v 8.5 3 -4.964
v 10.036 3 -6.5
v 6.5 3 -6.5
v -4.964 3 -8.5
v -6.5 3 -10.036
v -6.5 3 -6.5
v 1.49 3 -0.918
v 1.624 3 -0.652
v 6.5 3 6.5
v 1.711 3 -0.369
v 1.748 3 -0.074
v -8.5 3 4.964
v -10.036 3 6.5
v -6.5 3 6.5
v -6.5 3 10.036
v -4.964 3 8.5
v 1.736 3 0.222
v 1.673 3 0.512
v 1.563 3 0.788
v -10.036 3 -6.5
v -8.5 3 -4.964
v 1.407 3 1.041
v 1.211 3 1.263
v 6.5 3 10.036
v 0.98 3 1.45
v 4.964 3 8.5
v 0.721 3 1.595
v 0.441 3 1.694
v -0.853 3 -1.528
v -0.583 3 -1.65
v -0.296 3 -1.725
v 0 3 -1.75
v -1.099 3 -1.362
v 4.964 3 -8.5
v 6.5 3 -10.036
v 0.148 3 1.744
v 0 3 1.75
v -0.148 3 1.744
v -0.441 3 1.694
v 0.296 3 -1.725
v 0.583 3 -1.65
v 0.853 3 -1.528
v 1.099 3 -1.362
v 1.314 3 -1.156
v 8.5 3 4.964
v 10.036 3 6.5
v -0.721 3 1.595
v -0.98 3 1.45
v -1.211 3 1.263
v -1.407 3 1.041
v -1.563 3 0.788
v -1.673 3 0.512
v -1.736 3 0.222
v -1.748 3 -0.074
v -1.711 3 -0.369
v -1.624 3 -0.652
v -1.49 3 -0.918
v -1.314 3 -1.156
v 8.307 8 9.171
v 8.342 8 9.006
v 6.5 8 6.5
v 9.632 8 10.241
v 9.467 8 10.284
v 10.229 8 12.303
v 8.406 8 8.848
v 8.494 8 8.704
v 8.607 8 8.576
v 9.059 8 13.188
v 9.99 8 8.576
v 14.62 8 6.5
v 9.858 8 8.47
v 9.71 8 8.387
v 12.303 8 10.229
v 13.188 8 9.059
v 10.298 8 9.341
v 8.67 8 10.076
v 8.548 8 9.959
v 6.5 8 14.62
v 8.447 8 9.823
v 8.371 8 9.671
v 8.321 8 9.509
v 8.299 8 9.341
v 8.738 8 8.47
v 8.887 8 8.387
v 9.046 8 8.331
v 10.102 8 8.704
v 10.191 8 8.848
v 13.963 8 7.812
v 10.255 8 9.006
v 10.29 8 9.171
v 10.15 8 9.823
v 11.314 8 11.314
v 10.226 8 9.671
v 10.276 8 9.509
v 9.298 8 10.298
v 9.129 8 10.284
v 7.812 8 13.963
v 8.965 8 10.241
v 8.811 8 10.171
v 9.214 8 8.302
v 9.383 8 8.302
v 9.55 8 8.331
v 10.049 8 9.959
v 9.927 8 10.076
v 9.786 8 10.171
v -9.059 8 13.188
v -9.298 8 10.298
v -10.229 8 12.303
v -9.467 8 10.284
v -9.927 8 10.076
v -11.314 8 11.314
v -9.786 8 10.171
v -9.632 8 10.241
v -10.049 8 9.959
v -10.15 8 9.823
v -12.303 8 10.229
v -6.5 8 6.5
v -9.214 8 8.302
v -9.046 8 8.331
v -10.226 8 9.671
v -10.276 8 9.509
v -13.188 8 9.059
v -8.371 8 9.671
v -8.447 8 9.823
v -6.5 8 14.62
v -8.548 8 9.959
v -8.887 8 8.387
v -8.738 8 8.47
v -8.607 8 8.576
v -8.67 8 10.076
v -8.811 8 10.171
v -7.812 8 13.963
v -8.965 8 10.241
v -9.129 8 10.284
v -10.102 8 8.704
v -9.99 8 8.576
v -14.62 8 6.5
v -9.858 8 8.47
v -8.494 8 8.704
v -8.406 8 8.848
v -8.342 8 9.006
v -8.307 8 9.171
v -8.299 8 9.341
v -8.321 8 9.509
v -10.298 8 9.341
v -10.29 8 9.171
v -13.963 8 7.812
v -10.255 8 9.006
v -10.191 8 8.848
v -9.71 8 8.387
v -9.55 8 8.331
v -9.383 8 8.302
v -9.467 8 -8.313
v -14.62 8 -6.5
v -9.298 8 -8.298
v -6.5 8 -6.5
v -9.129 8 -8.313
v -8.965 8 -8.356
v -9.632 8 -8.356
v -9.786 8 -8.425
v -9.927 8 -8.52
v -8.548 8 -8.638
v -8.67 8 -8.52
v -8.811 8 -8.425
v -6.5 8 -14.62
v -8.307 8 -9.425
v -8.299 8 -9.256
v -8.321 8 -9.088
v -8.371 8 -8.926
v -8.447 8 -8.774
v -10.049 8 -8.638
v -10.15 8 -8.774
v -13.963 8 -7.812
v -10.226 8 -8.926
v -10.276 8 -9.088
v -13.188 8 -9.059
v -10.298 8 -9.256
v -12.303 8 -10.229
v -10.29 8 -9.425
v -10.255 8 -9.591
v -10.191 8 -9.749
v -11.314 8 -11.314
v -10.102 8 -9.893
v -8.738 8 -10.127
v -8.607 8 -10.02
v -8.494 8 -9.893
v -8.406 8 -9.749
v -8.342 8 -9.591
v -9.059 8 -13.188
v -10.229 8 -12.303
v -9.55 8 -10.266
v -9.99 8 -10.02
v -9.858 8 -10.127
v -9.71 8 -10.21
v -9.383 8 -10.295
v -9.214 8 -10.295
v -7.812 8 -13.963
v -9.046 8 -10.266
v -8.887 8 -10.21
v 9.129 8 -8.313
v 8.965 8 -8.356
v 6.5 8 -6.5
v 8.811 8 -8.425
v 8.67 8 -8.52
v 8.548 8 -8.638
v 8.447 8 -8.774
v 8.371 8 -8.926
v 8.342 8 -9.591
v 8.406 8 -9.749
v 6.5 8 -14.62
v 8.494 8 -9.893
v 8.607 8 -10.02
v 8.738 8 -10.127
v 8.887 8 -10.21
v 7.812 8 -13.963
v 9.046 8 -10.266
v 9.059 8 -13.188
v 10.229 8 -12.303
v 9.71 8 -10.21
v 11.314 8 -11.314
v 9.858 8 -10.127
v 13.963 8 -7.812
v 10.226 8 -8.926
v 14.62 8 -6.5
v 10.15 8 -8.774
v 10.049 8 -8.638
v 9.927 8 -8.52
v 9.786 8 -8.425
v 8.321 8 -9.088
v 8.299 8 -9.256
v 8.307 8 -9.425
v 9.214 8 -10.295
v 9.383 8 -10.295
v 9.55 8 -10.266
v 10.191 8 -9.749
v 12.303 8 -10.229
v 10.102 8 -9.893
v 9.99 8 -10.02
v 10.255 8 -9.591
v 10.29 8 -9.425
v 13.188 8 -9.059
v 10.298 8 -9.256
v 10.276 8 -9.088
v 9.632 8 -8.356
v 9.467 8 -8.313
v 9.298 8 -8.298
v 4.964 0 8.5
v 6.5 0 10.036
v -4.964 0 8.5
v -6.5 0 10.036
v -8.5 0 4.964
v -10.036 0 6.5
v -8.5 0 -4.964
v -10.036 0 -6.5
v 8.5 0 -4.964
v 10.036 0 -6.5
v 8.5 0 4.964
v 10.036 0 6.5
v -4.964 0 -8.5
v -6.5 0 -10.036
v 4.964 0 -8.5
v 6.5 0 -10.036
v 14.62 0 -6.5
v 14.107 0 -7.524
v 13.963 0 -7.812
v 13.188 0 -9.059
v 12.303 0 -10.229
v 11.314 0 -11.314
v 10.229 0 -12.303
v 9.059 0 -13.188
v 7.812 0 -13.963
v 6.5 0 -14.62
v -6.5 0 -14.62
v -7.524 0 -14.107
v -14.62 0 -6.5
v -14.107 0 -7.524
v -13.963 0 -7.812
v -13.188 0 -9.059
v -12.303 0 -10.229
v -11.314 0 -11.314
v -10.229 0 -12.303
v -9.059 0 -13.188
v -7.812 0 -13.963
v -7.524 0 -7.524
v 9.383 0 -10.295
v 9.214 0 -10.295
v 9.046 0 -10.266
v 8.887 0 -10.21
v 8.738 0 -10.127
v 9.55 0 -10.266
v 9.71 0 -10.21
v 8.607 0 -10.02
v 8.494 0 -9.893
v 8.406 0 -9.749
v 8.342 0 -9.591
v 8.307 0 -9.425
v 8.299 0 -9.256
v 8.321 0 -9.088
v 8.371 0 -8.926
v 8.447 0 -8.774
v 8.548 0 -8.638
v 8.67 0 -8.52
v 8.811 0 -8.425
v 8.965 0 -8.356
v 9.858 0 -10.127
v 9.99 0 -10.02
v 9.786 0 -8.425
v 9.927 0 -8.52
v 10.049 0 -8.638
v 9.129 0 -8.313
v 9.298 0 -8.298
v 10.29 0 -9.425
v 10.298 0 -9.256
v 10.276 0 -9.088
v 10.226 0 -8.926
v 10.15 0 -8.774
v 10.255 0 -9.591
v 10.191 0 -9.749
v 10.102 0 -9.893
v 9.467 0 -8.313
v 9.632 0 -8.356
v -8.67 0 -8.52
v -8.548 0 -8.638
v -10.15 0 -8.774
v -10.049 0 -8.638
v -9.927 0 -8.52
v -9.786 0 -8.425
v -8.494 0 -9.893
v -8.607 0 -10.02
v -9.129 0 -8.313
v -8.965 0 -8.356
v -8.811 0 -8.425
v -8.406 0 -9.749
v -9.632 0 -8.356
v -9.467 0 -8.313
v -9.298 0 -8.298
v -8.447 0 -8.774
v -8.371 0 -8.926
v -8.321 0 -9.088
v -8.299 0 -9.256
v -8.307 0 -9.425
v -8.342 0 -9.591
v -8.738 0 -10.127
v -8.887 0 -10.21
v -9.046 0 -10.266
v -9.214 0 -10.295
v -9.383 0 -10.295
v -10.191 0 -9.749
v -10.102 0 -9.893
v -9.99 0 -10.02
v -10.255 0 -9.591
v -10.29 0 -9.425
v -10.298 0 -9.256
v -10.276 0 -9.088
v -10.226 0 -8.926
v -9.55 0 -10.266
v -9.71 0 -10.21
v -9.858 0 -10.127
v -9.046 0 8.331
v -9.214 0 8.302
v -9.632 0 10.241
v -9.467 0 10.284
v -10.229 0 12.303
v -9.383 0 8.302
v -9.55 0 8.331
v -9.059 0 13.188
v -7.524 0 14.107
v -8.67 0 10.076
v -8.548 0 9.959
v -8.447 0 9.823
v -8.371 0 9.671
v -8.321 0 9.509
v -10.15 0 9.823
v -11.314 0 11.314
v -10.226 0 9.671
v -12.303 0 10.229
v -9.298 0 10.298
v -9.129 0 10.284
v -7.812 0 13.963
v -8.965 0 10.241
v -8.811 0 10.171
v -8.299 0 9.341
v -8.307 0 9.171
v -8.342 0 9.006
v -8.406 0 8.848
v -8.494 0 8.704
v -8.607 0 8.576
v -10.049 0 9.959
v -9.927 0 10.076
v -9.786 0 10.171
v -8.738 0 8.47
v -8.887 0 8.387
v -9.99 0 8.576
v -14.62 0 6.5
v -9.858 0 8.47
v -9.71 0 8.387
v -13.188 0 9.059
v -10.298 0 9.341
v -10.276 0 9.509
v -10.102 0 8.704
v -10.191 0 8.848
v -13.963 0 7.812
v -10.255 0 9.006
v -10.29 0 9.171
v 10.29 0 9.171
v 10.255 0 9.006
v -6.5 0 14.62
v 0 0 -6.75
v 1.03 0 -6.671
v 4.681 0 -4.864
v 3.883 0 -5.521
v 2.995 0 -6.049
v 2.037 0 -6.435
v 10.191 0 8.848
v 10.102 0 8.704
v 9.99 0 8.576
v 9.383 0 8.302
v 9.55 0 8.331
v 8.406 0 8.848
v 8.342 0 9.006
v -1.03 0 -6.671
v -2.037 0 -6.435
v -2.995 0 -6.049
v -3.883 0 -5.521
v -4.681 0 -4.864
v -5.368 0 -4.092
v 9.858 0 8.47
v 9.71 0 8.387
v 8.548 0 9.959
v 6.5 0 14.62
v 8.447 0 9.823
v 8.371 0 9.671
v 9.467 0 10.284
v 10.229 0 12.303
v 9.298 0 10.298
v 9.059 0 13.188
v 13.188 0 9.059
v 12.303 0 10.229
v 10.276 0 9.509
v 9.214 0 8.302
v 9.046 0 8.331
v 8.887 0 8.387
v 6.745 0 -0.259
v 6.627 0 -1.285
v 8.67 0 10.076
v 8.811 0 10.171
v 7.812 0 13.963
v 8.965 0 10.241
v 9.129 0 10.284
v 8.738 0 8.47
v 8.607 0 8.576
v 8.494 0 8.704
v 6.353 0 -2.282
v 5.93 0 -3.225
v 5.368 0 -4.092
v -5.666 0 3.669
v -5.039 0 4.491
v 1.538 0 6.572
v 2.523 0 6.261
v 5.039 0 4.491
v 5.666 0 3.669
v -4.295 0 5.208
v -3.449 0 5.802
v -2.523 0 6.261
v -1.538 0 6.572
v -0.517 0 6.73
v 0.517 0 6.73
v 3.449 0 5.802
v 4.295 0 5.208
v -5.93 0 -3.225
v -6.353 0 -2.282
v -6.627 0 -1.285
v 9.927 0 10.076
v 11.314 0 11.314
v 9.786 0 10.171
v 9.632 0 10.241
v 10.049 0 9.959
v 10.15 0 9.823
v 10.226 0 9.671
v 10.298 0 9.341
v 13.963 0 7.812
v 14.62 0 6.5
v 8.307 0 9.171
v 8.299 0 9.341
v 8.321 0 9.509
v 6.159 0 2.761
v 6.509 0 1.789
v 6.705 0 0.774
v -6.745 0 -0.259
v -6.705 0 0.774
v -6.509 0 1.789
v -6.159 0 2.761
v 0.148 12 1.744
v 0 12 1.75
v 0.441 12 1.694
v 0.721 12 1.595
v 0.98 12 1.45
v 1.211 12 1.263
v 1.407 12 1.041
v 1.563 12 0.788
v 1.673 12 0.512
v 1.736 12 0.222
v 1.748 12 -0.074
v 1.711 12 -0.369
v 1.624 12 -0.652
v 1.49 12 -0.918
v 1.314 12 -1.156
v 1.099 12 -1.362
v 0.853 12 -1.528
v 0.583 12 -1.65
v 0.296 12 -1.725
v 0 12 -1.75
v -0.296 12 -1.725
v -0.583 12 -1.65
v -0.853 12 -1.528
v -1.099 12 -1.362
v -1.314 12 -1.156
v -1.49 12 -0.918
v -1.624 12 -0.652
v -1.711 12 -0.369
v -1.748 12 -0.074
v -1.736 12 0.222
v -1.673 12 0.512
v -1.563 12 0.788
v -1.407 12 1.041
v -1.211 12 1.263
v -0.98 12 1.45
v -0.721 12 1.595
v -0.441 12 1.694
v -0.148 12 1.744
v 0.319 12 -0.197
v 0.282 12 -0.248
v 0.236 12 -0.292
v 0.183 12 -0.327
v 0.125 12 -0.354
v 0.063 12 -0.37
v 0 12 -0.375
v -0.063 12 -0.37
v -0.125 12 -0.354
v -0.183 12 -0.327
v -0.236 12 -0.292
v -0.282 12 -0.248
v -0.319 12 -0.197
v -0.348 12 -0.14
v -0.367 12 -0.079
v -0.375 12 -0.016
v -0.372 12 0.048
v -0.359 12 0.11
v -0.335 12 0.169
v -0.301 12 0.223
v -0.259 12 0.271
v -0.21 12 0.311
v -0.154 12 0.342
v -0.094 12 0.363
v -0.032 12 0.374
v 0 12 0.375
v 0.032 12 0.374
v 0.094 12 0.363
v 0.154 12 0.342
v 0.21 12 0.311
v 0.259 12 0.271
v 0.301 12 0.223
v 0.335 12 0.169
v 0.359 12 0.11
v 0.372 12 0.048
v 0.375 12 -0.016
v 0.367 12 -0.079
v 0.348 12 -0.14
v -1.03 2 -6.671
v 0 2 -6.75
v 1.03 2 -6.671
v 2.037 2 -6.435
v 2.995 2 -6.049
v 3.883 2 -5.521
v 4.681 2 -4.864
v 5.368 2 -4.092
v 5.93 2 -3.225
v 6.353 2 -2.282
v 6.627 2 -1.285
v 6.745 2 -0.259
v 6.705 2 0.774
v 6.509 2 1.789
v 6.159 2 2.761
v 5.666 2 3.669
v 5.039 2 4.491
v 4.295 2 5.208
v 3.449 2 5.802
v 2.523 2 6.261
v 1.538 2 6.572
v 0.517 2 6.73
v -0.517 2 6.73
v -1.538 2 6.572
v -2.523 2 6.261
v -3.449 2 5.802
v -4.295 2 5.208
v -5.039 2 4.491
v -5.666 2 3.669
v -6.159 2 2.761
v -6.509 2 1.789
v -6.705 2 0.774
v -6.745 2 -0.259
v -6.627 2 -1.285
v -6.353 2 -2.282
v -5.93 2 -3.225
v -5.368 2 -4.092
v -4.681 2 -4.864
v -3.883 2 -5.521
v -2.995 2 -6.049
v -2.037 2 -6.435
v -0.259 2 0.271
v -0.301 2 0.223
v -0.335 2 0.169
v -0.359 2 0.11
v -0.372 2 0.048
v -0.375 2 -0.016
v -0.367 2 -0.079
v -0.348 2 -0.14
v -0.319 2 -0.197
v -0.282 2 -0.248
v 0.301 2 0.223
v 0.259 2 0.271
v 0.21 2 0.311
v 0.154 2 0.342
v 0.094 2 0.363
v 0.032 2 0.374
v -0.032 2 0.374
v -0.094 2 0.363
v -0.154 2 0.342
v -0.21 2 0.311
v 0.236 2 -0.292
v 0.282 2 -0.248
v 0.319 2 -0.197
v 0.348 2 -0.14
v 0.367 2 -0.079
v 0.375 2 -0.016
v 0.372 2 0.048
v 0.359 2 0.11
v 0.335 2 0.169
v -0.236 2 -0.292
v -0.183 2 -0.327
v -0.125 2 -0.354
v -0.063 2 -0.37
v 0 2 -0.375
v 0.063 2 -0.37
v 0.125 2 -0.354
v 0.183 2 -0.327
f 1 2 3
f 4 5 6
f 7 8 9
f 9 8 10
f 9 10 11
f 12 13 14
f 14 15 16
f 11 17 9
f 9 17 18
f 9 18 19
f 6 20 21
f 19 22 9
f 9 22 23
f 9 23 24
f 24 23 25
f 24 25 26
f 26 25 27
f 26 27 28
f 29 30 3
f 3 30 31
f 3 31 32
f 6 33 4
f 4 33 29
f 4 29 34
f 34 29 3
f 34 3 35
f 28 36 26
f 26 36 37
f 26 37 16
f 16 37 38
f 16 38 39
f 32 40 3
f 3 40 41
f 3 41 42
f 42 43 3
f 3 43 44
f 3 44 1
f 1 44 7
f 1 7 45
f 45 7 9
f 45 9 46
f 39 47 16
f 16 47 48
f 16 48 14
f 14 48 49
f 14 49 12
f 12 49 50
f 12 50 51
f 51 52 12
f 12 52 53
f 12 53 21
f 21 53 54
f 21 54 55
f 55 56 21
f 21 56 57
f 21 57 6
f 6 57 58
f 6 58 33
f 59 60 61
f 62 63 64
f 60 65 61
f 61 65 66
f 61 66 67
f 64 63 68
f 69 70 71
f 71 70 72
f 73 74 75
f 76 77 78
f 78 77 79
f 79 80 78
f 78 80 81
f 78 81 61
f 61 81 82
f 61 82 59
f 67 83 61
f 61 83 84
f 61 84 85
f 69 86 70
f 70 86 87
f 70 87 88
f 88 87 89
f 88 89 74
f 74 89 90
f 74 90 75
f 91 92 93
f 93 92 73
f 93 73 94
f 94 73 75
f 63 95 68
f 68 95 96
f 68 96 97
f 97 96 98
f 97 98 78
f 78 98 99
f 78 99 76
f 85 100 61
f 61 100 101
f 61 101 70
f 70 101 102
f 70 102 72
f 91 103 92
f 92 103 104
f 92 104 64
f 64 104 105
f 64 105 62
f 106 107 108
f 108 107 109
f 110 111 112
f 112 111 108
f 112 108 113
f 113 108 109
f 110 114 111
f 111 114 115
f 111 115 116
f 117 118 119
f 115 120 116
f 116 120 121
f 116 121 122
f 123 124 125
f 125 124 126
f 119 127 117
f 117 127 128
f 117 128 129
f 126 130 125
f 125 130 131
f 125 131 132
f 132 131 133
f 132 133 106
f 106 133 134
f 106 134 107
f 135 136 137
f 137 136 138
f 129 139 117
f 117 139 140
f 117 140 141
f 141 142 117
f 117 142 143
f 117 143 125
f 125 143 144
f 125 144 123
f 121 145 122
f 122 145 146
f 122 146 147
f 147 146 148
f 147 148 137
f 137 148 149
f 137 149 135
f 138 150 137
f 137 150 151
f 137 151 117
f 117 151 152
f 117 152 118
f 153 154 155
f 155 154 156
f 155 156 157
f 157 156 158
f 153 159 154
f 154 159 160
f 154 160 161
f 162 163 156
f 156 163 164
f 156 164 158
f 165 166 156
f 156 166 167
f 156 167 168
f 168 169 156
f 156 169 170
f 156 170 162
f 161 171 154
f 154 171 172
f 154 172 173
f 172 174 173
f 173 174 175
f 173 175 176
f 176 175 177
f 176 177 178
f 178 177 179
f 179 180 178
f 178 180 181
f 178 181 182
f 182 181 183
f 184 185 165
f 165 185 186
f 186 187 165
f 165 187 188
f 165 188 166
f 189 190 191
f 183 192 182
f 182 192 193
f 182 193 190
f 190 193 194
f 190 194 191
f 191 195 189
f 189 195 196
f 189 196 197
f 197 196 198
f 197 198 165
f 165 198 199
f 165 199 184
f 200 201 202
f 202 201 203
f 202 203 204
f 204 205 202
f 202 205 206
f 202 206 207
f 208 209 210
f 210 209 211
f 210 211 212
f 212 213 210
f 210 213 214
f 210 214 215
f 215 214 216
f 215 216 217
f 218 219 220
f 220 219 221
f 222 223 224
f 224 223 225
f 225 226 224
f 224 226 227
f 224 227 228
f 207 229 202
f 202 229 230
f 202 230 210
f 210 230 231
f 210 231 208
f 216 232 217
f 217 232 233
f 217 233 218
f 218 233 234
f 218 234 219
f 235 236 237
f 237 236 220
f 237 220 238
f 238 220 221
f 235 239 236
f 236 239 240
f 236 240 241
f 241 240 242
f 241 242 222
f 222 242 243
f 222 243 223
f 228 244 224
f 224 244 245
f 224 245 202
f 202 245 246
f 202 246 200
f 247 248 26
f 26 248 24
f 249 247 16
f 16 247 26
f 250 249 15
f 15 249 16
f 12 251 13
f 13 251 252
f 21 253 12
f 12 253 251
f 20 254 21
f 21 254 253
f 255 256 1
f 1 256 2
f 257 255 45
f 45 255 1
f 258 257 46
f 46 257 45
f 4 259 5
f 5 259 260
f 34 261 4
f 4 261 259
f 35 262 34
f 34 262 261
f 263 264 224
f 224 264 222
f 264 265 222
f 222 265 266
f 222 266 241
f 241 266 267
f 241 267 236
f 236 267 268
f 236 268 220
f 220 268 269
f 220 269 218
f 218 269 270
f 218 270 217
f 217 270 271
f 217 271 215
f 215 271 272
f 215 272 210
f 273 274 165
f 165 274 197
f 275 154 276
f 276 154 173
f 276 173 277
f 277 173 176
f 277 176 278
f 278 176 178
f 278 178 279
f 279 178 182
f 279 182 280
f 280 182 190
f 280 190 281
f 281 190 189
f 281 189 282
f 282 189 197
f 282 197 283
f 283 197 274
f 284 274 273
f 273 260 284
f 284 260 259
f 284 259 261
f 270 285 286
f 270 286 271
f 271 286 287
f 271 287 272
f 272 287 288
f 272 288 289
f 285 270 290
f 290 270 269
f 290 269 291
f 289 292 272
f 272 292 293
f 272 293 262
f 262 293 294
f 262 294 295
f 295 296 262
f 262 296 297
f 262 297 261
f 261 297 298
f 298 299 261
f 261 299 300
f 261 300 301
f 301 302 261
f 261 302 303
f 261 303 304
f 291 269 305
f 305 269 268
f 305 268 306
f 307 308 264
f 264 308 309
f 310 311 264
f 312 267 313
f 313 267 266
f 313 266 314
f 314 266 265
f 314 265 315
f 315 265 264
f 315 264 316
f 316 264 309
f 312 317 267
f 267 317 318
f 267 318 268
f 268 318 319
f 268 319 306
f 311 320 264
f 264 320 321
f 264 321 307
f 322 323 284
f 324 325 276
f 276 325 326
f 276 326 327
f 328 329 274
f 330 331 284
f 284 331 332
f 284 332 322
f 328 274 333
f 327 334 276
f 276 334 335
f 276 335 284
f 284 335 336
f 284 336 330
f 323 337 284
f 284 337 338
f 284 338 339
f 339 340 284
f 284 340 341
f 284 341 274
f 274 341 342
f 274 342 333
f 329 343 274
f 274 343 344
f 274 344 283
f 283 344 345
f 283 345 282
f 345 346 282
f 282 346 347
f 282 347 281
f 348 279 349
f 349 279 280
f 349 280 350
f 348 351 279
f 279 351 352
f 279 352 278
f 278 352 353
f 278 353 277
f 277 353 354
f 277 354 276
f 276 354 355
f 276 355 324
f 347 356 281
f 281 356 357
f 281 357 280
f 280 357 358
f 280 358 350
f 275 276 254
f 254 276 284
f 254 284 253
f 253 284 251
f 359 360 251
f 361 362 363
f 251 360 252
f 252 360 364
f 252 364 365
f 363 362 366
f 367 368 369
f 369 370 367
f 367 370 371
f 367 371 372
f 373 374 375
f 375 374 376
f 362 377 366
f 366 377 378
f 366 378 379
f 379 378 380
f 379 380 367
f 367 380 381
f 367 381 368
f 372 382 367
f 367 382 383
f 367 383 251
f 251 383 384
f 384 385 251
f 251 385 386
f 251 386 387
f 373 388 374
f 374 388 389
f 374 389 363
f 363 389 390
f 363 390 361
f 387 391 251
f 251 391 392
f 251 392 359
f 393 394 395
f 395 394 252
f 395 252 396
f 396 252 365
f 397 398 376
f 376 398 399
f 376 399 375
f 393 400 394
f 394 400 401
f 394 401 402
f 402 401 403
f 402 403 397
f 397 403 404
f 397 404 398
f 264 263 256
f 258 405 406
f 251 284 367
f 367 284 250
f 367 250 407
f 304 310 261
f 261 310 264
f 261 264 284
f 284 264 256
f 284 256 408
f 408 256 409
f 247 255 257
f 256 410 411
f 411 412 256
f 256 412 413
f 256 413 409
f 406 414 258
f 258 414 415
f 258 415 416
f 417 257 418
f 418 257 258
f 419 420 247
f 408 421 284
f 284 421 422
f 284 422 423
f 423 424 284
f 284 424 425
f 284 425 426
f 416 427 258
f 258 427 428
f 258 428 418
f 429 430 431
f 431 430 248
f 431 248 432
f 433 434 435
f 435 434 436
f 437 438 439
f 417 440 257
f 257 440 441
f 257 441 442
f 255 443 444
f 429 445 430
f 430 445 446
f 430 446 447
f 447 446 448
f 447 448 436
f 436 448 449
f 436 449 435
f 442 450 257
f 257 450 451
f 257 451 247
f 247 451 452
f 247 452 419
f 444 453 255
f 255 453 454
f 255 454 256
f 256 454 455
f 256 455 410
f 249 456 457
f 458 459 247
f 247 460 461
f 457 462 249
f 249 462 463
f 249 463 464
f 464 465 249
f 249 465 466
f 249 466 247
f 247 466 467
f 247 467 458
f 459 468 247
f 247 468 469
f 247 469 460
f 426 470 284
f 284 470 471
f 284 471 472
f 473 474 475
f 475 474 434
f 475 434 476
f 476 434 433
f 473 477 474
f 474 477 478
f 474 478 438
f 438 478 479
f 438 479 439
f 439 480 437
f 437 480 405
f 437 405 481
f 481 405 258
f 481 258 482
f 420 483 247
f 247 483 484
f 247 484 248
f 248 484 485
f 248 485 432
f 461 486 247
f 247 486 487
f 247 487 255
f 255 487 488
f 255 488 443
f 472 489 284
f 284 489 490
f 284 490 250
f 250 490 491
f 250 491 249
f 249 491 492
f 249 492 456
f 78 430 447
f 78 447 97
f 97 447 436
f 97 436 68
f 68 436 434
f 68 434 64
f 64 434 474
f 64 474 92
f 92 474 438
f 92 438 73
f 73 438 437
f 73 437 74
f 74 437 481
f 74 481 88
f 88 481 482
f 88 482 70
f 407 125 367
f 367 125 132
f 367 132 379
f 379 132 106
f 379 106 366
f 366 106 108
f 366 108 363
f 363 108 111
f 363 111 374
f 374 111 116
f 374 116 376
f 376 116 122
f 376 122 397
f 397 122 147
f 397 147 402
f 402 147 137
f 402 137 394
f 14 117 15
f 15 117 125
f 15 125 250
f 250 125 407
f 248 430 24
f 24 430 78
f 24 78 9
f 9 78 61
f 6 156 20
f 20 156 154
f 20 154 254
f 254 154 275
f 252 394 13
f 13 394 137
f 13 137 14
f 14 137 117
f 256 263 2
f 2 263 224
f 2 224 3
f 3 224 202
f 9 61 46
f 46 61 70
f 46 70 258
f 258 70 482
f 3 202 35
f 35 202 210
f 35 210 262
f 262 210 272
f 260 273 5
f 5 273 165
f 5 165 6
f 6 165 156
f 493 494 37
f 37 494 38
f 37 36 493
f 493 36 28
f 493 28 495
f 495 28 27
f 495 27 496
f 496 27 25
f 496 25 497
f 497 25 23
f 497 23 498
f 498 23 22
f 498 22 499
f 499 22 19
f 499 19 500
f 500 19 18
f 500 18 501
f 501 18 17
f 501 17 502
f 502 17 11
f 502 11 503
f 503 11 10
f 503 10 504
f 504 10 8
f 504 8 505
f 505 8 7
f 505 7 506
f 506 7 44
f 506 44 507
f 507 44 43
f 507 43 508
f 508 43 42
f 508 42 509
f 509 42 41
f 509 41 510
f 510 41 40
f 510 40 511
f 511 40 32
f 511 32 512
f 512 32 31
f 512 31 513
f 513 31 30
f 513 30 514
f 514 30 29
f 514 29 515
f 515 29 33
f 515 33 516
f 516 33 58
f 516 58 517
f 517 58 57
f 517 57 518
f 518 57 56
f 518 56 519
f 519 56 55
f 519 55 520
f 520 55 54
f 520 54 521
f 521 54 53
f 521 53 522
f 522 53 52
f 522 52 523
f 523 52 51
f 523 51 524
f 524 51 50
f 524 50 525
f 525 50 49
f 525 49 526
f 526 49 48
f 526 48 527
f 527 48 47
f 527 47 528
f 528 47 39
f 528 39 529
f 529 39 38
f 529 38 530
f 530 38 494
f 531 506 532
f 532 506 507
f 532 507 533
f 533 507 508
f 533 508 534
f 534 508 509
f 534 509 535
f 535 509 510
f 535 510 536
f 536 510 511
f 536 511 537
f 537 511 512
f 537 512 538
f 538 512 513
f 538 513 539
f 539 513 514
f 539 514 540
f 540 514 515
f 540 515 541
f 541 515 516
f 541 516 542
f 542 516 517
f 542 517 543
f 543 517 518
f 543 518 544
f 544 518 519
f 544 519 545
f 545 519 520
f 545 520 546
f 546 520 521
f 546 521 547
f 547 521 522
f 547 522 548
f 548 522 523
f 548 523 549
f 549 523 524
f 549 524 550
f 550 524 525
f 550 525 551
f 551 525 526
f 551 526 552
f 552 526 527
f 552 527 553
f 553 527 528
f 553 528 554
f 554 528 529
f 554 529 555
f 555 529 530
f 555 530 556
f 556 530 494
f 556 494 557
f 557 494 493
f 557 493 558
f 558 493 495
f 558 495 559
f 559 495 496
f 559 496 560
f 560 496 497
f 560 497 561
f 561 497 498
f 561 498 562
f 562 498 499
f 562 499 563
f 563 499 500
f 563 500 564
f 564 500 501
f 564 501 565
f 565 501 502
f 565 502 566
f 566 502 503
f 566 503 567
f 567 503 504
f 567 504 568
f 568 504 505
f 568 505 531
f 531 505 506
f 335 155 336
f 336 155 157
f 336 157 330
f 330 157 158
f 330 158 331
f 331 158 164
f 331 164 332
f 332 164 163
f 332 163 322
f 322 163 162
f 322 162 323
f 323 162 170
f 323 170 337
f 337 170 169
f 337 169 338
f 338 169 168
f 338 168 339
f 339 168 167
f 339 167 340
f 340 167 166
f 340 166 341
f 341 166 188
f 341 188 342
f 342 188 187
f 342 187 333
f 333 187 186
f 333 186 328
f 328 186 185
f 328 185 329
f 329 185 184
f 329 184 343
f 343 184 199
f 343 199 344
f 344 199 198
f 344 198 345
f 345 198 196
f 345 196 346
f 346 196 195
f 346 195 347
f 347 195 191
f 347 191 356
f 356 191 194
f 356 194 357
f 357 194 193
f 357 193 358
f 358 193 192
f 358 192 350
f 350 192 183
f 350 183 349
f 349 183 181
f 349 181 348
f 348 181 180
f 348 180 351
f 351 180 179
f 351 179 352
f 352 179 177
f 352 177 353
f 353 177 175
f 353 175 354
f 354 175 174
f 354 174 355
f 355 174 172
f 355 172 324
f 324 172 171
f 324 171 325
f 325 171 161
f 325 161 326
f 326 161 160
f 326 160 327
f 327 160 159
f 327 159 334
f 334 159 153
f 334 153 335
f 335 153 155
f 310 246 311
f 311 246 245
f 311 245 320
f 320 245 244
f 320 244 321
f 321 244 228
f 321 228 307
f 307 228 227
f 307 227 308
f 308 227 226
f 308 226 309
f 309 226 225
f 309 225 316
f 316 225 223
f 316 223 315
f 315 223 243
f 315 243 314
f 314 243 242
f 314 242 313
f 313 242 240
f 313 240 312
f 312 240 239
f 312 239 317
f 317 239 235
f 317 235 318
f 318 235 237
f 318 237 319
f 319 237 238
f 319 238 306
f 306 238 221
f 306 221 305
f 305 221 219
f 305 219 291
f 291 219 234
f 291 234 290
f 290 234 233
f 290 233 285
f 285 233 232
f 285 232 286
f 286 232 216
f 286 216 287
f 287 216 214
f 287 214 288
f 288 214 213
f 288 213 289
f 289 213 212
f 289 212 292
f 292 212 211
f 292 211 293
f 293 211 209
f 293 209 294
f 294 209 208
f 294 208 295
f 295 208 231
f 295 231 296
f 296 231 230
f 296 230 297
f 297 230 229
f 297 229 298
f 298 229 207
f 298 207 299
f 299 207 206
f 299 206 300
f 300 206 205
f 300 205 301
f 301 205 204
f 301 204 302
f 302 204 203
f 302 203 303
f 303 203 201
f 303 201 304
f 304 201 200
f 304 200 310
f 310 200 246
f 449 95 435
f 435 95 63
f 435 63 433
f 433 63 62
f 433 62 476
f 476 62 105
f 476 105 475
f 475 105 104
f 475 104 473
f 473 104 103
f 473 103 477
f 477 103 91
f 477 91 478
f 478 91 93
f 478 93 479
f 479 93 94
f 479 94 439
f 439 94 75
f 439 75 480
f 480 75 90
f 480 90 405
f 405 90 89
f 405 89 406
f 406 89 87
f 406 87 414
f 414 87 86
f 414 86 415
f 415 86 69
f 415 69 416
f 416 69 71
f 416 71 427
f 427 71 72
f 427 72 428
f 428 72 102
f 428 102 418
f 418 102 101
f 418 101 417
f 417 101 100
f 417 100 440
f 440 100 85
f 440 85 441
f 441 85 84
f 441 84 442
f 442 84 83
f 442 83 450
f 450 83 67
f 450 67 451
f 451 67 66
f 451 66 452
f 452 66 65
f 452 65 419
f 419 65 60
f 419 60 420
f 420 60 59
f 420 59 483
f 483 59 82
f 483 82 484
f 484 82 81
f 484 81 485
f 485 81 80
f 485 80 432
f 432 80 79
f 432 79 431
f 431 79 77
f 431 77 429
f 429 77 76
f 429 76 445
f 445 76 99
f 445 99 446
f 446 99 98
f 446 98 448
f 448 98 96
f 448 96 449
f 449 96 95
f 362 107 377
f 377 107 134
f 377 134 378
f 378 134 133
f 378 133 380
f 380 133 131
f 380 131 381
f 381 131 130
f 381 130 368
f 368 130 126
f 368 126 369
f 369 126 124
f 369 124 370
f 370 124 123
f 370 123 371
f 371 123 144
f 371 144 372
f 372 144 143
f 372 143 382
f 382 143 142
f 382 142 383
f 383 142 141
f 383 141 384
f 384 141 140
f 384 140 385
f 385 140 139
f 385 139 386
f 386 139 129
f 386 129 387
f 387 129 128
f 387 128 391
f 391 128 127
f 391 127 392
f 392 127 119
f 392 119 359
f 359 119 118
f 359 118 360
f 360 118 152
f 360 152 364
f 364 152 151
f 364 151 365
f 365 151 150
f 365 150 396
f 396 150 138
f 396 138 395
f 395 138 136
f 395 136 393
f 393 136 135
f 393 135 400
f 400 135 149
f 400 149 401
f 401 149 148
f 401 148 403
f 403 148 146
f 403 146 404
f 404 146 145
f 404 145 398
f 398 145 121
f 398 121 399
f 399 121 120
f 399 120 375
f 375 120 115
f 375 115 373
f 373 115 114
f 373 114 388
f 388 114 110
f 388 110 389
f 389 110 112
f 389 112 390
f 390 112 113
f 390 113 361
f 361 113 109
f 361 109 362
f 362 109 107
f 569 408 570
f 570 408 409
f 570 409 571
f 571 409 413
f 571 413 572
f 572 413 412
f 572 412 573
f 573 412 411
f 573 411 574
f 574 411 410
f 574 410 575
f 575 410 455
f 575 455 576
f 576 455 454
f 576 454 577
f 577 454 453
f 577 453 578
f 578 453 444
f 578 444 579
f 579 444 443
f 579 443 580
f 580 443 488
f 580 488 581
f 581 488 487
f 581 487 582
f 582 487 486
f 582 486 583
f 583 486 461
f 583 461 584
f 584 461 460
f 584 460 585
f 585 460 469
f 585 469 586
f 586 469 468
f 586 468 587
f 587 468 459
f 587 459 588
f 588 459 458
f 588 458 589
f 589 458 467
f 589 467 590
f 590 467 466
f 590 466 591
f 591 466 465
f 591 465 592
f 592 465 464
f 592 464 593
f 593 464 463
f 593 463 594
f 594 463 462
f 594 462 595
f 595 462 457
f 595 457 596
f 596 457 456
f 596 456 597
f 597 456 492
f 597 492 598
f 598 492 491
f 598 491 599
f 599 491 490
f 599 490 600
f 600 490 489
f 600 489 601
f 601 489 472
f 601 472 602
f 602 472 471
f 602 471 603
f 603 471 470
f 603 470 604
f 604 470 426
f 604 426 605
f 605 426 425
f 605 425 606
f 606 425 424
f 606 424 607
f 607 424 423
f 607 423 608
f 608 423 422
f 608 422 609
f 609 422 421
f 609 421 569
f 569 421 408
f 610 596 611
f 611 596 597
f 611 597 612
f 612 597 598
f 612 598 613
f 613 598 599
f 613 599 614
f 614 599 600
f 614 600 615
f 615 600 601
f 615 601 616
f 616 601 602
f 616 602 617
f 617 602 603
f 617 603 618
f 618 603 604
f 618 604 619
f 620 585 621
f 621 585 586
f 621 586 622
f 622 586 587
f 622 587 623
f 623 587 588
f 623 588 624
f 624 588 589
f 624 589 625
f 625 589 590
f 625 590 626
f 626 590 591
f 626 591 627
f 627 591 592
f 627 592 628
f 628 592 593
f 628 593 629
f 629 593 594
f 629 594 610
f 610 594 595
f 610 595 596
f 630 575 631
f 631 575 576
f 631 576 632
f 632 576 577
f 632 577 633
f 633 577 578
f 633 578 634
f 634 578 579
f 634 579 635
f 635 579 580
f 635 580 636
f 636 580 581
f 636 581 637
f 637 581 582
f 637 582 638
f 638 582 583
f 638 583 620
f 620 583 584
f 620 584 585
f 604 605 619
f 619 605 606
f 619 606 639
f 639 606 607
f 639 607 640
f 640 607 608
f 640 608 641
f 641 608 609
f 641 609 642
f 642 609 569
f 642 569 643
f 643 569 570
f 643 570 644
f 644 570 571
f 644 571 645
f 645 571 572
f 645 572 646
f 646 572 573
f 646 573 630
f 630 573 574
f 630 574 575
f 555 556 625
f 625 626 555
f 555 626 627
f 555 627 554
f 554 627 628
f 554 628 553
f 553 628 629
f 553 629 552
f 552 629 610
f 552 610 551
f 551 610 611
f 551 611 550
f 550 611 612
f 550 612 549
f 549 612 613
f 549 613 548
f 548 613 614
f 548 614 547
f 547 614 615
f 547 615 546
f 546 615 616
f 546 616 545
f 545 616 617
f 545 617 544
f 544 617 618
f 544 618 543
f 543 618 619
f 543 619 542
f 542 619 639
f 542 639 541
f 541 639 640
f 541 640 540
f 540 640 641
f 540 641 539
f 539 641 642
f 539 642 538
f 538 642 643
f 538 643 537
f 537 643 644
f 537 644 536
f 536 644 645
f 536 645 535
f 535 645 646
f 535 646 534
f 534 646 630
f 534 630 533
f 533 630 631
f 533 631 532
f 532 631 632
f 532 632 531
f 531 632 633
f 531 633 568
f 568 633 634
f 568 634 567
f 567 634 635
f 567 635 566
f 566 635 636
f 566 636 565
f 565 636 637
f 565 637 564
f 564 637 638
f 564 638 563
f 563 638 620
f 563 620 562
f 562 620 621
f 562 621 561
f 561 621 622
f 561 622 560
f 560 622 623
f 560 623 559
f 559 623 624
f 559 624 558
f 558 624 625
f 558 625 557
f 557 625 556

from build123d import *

# Parameters (mm, degrees)
CROQUIS1_R                 = 16
SALIENTE_EXTRUIR1_DEPTH    = 8
CORTAR_EXTRUIR2_DEPTH      = 10
CORTAR_EXTRUIR4_DEPTH      = 5
CORTAR_EXTRUIR4_DEPTH_BACK = 10
CORTAR_EXTRUIR4_START      = -8
CROQUIS5_R                 = 1.75
SALIENTE_EXTRUIR2_DEPTH    = 9
CROQUIS6_6_R               = 1
CORTAR_EXTRUIR8_DEPTH      = 10
CROQUIS10_3_R              = 6.75
CORTAR_EXTRUIR10_DEPTH     = 2
CROQUIS13_R                = 0.375
CORTAR_EXTRUIR11_DEPTH     = 22


with BuildPart() as part:
    # Croquis1 → Saliente-Extruir1 (new body)
    with BuildSketch(Plane(origin=(0, 0, 0), x_dir=(1, 0, 0), z_dir=(0, 1, 0))):
        with Locations(Location((0, 0, 0), (0, 0, 270))):
            Circle(CROQUIS1_R)
    extrude(amount=SALIENTE_EXTRUIR1_DEPTH)

    # Croquis2 → Cortar-Extruir2 (cut)
    with BuildSketch(Plane(origin=(0, 0, 0), x_dir=(-1, 0, 0), z_dir=(0, -1, 0))):
        with BuildLine():
            ThreePointArc((-6.5, -14.620191518), (0, -16), (6.5, -14.620191517))
            Line((6.5, -14.620191517), (6.5, -10.035533906))
            Line((6.5, -10.035533906), (4.964466094, -8.5))
            Line((4.964466094, -8.5), (-4.964466094, -8.5))
            Line((-4.964466094, -8.5), (-6.5, -10.035533906))
            Line((-6.5, -10.035533906), (-6.5, -14.620191517))
        make_face()
        with BuildLine():
            Line((-4.964466094, 8.5), (4.964466094, 8.5))
            Line((4.964466094, 8.5), (6.5, 10.035533906))
            Line((6.5, 10.035533906), (6.5, 14.620191517))
            ThreePointArc((6.5, 14.620191518), (0, 16.000000001), (-6.5, 14.620191518))
            Line((-6.5, 14.620191517), (-6.5, 10.035533906))
            Line((-6.5, 10.035533906), (-4.964466094, 8.5))
        make_face()
        with BuildLine():
            Line((10.035533906, -6.5), (14.620191517, -6.5))
            ThreePointArc((14.620191515, -6.499999999), (15.651246979, -3.322418977), (15.999999994, 0))
            ThreePointArc((16, 0), (15.651246984, 3.322418978), (14.620191517, 6.5))
            Line((14.620191517, 6.5), (10.035533906, 6.5))
            Line((10.035533906, 6.5), (8.5, 4.964466094))
            Line((8.5, 4.964466094), (8.5, -4.964466094))
            Line((8.5, -4.964466094), (10.035533906, -6.5))
        make_face()
        with BuildLine():
            ThreePointArc((-14.620191518, 6.5), (-16.000000001, 0), (-14.620191518, -6.5))
            Line((-14.620191517, -6.5), (-10.035533906, -6.5))
            Line((-10.035533906, -6.5), (-8.5, -4.964466094))
            Line((-8.5, -4.964466094), (-8.5, 4.964466094))
            Line((-8.5, 4.964466094), (-10.035533906, 6.5))
            Line((-10.035533906, 6.5), (-14.620191517, 6.5))
        make_face()
    extrude(amount=-CORTAR_EXTRUIR2_DEPTH, mode=Mode.SUBTRACT)

    # Croquis4 → Cortar-Extruir4 (cut, two sides: drawn at the far end of the back side and taken through both)
    with BuildSketch(Plane.XZ.offset(CORTAR_EXTRUIR4_START - CORTAR_EXTRUIR4_DEPTH_BACK)):
        Polygon((-6.5, 16.599431938), (-6.5, 6.5), (-19.32076002, 6.5), (-19.32076002, -6.5), (-6.5, -6.5), (-6.5, -17.296221808), (6.5, -17.296221808), (6.5, -6.5), (20.964302933, -6.5), (20.964302933, 6.5), (6.5, 6.5), (6.5, 16.599431938), align=None)
    extrude(amount=CORTAR_EXTRUIR4_DEPTH + CORTAR_EXTRUIR4_DEPTH_BACK, mode=Mode.SUBTRACT)

    # Croquis5 → Saliente-Extruir2 (add)
    with BuildSketch(Plane(origin=(0, 3, 0), x_dir=(1, 0, 0), z_dir=(0, 1, 0))):
        with Locations(Location((0, 0, 0), (0, 0, 270))):
            Circle(CROQUIS5_R)
    extrude(amount=SALIENTE_EXTRUIR2_DEPTH)

    # Croquis6<6> → Cortar-Extruir8 (cut)
    with BuildSketch(Plane(origin=(0, 8, 0), x_dir=(1, 0, 0), z_dir=(0, 1, 0))):
        with Locations(Location((-9.298454173, 9.298454173, 0), (0, 0, 270))):
            Circle(CROQUIS6_6_R)
        with Locations(Location((9.298454173, 9.298454173, 0), (0, 0, 270))):
            Circle(CROQUIS6_6_R)
        with Locations(Location((9.298454173, -9.298454173, 0), (0, 0, 270))):
            Circle(CROQUIS6_6_R)
        with Locations(Location((-9.298454173, -9.298454173, 0), (0, 0, 270))):
            Circle(CROQUIS6_6_R)
    extrude(amount=-CORTAR_EXTRUIR8_DEPTH, mode=Mode.SUBTRACT)

    # Croquis10<3> → Cortar-Extruir10 (cut)
    with BuildSketch(Plane.XZ):
        with Locations(Location((0, 0, 0), (0, 0, 270))):
            Circle(CROQUIS10_3_R)
    extrude(amount=-CORTAR_EXTRUIR10_DEPTH, mode=Mode.SUBTRACT)

    # Croquis13 → Cortar-Extruir11 (cut)
    with BuildSketch(Plane.XZ):
        with Locations(Location((0, 0, 0), (0, 0, 270))):
            Circle(CROQUIS13_R)
    extrude(amount=-CORTAR_EXTRUIR11_DEPTH, mode=Mode.SUBTRACT)


solid = part.part
